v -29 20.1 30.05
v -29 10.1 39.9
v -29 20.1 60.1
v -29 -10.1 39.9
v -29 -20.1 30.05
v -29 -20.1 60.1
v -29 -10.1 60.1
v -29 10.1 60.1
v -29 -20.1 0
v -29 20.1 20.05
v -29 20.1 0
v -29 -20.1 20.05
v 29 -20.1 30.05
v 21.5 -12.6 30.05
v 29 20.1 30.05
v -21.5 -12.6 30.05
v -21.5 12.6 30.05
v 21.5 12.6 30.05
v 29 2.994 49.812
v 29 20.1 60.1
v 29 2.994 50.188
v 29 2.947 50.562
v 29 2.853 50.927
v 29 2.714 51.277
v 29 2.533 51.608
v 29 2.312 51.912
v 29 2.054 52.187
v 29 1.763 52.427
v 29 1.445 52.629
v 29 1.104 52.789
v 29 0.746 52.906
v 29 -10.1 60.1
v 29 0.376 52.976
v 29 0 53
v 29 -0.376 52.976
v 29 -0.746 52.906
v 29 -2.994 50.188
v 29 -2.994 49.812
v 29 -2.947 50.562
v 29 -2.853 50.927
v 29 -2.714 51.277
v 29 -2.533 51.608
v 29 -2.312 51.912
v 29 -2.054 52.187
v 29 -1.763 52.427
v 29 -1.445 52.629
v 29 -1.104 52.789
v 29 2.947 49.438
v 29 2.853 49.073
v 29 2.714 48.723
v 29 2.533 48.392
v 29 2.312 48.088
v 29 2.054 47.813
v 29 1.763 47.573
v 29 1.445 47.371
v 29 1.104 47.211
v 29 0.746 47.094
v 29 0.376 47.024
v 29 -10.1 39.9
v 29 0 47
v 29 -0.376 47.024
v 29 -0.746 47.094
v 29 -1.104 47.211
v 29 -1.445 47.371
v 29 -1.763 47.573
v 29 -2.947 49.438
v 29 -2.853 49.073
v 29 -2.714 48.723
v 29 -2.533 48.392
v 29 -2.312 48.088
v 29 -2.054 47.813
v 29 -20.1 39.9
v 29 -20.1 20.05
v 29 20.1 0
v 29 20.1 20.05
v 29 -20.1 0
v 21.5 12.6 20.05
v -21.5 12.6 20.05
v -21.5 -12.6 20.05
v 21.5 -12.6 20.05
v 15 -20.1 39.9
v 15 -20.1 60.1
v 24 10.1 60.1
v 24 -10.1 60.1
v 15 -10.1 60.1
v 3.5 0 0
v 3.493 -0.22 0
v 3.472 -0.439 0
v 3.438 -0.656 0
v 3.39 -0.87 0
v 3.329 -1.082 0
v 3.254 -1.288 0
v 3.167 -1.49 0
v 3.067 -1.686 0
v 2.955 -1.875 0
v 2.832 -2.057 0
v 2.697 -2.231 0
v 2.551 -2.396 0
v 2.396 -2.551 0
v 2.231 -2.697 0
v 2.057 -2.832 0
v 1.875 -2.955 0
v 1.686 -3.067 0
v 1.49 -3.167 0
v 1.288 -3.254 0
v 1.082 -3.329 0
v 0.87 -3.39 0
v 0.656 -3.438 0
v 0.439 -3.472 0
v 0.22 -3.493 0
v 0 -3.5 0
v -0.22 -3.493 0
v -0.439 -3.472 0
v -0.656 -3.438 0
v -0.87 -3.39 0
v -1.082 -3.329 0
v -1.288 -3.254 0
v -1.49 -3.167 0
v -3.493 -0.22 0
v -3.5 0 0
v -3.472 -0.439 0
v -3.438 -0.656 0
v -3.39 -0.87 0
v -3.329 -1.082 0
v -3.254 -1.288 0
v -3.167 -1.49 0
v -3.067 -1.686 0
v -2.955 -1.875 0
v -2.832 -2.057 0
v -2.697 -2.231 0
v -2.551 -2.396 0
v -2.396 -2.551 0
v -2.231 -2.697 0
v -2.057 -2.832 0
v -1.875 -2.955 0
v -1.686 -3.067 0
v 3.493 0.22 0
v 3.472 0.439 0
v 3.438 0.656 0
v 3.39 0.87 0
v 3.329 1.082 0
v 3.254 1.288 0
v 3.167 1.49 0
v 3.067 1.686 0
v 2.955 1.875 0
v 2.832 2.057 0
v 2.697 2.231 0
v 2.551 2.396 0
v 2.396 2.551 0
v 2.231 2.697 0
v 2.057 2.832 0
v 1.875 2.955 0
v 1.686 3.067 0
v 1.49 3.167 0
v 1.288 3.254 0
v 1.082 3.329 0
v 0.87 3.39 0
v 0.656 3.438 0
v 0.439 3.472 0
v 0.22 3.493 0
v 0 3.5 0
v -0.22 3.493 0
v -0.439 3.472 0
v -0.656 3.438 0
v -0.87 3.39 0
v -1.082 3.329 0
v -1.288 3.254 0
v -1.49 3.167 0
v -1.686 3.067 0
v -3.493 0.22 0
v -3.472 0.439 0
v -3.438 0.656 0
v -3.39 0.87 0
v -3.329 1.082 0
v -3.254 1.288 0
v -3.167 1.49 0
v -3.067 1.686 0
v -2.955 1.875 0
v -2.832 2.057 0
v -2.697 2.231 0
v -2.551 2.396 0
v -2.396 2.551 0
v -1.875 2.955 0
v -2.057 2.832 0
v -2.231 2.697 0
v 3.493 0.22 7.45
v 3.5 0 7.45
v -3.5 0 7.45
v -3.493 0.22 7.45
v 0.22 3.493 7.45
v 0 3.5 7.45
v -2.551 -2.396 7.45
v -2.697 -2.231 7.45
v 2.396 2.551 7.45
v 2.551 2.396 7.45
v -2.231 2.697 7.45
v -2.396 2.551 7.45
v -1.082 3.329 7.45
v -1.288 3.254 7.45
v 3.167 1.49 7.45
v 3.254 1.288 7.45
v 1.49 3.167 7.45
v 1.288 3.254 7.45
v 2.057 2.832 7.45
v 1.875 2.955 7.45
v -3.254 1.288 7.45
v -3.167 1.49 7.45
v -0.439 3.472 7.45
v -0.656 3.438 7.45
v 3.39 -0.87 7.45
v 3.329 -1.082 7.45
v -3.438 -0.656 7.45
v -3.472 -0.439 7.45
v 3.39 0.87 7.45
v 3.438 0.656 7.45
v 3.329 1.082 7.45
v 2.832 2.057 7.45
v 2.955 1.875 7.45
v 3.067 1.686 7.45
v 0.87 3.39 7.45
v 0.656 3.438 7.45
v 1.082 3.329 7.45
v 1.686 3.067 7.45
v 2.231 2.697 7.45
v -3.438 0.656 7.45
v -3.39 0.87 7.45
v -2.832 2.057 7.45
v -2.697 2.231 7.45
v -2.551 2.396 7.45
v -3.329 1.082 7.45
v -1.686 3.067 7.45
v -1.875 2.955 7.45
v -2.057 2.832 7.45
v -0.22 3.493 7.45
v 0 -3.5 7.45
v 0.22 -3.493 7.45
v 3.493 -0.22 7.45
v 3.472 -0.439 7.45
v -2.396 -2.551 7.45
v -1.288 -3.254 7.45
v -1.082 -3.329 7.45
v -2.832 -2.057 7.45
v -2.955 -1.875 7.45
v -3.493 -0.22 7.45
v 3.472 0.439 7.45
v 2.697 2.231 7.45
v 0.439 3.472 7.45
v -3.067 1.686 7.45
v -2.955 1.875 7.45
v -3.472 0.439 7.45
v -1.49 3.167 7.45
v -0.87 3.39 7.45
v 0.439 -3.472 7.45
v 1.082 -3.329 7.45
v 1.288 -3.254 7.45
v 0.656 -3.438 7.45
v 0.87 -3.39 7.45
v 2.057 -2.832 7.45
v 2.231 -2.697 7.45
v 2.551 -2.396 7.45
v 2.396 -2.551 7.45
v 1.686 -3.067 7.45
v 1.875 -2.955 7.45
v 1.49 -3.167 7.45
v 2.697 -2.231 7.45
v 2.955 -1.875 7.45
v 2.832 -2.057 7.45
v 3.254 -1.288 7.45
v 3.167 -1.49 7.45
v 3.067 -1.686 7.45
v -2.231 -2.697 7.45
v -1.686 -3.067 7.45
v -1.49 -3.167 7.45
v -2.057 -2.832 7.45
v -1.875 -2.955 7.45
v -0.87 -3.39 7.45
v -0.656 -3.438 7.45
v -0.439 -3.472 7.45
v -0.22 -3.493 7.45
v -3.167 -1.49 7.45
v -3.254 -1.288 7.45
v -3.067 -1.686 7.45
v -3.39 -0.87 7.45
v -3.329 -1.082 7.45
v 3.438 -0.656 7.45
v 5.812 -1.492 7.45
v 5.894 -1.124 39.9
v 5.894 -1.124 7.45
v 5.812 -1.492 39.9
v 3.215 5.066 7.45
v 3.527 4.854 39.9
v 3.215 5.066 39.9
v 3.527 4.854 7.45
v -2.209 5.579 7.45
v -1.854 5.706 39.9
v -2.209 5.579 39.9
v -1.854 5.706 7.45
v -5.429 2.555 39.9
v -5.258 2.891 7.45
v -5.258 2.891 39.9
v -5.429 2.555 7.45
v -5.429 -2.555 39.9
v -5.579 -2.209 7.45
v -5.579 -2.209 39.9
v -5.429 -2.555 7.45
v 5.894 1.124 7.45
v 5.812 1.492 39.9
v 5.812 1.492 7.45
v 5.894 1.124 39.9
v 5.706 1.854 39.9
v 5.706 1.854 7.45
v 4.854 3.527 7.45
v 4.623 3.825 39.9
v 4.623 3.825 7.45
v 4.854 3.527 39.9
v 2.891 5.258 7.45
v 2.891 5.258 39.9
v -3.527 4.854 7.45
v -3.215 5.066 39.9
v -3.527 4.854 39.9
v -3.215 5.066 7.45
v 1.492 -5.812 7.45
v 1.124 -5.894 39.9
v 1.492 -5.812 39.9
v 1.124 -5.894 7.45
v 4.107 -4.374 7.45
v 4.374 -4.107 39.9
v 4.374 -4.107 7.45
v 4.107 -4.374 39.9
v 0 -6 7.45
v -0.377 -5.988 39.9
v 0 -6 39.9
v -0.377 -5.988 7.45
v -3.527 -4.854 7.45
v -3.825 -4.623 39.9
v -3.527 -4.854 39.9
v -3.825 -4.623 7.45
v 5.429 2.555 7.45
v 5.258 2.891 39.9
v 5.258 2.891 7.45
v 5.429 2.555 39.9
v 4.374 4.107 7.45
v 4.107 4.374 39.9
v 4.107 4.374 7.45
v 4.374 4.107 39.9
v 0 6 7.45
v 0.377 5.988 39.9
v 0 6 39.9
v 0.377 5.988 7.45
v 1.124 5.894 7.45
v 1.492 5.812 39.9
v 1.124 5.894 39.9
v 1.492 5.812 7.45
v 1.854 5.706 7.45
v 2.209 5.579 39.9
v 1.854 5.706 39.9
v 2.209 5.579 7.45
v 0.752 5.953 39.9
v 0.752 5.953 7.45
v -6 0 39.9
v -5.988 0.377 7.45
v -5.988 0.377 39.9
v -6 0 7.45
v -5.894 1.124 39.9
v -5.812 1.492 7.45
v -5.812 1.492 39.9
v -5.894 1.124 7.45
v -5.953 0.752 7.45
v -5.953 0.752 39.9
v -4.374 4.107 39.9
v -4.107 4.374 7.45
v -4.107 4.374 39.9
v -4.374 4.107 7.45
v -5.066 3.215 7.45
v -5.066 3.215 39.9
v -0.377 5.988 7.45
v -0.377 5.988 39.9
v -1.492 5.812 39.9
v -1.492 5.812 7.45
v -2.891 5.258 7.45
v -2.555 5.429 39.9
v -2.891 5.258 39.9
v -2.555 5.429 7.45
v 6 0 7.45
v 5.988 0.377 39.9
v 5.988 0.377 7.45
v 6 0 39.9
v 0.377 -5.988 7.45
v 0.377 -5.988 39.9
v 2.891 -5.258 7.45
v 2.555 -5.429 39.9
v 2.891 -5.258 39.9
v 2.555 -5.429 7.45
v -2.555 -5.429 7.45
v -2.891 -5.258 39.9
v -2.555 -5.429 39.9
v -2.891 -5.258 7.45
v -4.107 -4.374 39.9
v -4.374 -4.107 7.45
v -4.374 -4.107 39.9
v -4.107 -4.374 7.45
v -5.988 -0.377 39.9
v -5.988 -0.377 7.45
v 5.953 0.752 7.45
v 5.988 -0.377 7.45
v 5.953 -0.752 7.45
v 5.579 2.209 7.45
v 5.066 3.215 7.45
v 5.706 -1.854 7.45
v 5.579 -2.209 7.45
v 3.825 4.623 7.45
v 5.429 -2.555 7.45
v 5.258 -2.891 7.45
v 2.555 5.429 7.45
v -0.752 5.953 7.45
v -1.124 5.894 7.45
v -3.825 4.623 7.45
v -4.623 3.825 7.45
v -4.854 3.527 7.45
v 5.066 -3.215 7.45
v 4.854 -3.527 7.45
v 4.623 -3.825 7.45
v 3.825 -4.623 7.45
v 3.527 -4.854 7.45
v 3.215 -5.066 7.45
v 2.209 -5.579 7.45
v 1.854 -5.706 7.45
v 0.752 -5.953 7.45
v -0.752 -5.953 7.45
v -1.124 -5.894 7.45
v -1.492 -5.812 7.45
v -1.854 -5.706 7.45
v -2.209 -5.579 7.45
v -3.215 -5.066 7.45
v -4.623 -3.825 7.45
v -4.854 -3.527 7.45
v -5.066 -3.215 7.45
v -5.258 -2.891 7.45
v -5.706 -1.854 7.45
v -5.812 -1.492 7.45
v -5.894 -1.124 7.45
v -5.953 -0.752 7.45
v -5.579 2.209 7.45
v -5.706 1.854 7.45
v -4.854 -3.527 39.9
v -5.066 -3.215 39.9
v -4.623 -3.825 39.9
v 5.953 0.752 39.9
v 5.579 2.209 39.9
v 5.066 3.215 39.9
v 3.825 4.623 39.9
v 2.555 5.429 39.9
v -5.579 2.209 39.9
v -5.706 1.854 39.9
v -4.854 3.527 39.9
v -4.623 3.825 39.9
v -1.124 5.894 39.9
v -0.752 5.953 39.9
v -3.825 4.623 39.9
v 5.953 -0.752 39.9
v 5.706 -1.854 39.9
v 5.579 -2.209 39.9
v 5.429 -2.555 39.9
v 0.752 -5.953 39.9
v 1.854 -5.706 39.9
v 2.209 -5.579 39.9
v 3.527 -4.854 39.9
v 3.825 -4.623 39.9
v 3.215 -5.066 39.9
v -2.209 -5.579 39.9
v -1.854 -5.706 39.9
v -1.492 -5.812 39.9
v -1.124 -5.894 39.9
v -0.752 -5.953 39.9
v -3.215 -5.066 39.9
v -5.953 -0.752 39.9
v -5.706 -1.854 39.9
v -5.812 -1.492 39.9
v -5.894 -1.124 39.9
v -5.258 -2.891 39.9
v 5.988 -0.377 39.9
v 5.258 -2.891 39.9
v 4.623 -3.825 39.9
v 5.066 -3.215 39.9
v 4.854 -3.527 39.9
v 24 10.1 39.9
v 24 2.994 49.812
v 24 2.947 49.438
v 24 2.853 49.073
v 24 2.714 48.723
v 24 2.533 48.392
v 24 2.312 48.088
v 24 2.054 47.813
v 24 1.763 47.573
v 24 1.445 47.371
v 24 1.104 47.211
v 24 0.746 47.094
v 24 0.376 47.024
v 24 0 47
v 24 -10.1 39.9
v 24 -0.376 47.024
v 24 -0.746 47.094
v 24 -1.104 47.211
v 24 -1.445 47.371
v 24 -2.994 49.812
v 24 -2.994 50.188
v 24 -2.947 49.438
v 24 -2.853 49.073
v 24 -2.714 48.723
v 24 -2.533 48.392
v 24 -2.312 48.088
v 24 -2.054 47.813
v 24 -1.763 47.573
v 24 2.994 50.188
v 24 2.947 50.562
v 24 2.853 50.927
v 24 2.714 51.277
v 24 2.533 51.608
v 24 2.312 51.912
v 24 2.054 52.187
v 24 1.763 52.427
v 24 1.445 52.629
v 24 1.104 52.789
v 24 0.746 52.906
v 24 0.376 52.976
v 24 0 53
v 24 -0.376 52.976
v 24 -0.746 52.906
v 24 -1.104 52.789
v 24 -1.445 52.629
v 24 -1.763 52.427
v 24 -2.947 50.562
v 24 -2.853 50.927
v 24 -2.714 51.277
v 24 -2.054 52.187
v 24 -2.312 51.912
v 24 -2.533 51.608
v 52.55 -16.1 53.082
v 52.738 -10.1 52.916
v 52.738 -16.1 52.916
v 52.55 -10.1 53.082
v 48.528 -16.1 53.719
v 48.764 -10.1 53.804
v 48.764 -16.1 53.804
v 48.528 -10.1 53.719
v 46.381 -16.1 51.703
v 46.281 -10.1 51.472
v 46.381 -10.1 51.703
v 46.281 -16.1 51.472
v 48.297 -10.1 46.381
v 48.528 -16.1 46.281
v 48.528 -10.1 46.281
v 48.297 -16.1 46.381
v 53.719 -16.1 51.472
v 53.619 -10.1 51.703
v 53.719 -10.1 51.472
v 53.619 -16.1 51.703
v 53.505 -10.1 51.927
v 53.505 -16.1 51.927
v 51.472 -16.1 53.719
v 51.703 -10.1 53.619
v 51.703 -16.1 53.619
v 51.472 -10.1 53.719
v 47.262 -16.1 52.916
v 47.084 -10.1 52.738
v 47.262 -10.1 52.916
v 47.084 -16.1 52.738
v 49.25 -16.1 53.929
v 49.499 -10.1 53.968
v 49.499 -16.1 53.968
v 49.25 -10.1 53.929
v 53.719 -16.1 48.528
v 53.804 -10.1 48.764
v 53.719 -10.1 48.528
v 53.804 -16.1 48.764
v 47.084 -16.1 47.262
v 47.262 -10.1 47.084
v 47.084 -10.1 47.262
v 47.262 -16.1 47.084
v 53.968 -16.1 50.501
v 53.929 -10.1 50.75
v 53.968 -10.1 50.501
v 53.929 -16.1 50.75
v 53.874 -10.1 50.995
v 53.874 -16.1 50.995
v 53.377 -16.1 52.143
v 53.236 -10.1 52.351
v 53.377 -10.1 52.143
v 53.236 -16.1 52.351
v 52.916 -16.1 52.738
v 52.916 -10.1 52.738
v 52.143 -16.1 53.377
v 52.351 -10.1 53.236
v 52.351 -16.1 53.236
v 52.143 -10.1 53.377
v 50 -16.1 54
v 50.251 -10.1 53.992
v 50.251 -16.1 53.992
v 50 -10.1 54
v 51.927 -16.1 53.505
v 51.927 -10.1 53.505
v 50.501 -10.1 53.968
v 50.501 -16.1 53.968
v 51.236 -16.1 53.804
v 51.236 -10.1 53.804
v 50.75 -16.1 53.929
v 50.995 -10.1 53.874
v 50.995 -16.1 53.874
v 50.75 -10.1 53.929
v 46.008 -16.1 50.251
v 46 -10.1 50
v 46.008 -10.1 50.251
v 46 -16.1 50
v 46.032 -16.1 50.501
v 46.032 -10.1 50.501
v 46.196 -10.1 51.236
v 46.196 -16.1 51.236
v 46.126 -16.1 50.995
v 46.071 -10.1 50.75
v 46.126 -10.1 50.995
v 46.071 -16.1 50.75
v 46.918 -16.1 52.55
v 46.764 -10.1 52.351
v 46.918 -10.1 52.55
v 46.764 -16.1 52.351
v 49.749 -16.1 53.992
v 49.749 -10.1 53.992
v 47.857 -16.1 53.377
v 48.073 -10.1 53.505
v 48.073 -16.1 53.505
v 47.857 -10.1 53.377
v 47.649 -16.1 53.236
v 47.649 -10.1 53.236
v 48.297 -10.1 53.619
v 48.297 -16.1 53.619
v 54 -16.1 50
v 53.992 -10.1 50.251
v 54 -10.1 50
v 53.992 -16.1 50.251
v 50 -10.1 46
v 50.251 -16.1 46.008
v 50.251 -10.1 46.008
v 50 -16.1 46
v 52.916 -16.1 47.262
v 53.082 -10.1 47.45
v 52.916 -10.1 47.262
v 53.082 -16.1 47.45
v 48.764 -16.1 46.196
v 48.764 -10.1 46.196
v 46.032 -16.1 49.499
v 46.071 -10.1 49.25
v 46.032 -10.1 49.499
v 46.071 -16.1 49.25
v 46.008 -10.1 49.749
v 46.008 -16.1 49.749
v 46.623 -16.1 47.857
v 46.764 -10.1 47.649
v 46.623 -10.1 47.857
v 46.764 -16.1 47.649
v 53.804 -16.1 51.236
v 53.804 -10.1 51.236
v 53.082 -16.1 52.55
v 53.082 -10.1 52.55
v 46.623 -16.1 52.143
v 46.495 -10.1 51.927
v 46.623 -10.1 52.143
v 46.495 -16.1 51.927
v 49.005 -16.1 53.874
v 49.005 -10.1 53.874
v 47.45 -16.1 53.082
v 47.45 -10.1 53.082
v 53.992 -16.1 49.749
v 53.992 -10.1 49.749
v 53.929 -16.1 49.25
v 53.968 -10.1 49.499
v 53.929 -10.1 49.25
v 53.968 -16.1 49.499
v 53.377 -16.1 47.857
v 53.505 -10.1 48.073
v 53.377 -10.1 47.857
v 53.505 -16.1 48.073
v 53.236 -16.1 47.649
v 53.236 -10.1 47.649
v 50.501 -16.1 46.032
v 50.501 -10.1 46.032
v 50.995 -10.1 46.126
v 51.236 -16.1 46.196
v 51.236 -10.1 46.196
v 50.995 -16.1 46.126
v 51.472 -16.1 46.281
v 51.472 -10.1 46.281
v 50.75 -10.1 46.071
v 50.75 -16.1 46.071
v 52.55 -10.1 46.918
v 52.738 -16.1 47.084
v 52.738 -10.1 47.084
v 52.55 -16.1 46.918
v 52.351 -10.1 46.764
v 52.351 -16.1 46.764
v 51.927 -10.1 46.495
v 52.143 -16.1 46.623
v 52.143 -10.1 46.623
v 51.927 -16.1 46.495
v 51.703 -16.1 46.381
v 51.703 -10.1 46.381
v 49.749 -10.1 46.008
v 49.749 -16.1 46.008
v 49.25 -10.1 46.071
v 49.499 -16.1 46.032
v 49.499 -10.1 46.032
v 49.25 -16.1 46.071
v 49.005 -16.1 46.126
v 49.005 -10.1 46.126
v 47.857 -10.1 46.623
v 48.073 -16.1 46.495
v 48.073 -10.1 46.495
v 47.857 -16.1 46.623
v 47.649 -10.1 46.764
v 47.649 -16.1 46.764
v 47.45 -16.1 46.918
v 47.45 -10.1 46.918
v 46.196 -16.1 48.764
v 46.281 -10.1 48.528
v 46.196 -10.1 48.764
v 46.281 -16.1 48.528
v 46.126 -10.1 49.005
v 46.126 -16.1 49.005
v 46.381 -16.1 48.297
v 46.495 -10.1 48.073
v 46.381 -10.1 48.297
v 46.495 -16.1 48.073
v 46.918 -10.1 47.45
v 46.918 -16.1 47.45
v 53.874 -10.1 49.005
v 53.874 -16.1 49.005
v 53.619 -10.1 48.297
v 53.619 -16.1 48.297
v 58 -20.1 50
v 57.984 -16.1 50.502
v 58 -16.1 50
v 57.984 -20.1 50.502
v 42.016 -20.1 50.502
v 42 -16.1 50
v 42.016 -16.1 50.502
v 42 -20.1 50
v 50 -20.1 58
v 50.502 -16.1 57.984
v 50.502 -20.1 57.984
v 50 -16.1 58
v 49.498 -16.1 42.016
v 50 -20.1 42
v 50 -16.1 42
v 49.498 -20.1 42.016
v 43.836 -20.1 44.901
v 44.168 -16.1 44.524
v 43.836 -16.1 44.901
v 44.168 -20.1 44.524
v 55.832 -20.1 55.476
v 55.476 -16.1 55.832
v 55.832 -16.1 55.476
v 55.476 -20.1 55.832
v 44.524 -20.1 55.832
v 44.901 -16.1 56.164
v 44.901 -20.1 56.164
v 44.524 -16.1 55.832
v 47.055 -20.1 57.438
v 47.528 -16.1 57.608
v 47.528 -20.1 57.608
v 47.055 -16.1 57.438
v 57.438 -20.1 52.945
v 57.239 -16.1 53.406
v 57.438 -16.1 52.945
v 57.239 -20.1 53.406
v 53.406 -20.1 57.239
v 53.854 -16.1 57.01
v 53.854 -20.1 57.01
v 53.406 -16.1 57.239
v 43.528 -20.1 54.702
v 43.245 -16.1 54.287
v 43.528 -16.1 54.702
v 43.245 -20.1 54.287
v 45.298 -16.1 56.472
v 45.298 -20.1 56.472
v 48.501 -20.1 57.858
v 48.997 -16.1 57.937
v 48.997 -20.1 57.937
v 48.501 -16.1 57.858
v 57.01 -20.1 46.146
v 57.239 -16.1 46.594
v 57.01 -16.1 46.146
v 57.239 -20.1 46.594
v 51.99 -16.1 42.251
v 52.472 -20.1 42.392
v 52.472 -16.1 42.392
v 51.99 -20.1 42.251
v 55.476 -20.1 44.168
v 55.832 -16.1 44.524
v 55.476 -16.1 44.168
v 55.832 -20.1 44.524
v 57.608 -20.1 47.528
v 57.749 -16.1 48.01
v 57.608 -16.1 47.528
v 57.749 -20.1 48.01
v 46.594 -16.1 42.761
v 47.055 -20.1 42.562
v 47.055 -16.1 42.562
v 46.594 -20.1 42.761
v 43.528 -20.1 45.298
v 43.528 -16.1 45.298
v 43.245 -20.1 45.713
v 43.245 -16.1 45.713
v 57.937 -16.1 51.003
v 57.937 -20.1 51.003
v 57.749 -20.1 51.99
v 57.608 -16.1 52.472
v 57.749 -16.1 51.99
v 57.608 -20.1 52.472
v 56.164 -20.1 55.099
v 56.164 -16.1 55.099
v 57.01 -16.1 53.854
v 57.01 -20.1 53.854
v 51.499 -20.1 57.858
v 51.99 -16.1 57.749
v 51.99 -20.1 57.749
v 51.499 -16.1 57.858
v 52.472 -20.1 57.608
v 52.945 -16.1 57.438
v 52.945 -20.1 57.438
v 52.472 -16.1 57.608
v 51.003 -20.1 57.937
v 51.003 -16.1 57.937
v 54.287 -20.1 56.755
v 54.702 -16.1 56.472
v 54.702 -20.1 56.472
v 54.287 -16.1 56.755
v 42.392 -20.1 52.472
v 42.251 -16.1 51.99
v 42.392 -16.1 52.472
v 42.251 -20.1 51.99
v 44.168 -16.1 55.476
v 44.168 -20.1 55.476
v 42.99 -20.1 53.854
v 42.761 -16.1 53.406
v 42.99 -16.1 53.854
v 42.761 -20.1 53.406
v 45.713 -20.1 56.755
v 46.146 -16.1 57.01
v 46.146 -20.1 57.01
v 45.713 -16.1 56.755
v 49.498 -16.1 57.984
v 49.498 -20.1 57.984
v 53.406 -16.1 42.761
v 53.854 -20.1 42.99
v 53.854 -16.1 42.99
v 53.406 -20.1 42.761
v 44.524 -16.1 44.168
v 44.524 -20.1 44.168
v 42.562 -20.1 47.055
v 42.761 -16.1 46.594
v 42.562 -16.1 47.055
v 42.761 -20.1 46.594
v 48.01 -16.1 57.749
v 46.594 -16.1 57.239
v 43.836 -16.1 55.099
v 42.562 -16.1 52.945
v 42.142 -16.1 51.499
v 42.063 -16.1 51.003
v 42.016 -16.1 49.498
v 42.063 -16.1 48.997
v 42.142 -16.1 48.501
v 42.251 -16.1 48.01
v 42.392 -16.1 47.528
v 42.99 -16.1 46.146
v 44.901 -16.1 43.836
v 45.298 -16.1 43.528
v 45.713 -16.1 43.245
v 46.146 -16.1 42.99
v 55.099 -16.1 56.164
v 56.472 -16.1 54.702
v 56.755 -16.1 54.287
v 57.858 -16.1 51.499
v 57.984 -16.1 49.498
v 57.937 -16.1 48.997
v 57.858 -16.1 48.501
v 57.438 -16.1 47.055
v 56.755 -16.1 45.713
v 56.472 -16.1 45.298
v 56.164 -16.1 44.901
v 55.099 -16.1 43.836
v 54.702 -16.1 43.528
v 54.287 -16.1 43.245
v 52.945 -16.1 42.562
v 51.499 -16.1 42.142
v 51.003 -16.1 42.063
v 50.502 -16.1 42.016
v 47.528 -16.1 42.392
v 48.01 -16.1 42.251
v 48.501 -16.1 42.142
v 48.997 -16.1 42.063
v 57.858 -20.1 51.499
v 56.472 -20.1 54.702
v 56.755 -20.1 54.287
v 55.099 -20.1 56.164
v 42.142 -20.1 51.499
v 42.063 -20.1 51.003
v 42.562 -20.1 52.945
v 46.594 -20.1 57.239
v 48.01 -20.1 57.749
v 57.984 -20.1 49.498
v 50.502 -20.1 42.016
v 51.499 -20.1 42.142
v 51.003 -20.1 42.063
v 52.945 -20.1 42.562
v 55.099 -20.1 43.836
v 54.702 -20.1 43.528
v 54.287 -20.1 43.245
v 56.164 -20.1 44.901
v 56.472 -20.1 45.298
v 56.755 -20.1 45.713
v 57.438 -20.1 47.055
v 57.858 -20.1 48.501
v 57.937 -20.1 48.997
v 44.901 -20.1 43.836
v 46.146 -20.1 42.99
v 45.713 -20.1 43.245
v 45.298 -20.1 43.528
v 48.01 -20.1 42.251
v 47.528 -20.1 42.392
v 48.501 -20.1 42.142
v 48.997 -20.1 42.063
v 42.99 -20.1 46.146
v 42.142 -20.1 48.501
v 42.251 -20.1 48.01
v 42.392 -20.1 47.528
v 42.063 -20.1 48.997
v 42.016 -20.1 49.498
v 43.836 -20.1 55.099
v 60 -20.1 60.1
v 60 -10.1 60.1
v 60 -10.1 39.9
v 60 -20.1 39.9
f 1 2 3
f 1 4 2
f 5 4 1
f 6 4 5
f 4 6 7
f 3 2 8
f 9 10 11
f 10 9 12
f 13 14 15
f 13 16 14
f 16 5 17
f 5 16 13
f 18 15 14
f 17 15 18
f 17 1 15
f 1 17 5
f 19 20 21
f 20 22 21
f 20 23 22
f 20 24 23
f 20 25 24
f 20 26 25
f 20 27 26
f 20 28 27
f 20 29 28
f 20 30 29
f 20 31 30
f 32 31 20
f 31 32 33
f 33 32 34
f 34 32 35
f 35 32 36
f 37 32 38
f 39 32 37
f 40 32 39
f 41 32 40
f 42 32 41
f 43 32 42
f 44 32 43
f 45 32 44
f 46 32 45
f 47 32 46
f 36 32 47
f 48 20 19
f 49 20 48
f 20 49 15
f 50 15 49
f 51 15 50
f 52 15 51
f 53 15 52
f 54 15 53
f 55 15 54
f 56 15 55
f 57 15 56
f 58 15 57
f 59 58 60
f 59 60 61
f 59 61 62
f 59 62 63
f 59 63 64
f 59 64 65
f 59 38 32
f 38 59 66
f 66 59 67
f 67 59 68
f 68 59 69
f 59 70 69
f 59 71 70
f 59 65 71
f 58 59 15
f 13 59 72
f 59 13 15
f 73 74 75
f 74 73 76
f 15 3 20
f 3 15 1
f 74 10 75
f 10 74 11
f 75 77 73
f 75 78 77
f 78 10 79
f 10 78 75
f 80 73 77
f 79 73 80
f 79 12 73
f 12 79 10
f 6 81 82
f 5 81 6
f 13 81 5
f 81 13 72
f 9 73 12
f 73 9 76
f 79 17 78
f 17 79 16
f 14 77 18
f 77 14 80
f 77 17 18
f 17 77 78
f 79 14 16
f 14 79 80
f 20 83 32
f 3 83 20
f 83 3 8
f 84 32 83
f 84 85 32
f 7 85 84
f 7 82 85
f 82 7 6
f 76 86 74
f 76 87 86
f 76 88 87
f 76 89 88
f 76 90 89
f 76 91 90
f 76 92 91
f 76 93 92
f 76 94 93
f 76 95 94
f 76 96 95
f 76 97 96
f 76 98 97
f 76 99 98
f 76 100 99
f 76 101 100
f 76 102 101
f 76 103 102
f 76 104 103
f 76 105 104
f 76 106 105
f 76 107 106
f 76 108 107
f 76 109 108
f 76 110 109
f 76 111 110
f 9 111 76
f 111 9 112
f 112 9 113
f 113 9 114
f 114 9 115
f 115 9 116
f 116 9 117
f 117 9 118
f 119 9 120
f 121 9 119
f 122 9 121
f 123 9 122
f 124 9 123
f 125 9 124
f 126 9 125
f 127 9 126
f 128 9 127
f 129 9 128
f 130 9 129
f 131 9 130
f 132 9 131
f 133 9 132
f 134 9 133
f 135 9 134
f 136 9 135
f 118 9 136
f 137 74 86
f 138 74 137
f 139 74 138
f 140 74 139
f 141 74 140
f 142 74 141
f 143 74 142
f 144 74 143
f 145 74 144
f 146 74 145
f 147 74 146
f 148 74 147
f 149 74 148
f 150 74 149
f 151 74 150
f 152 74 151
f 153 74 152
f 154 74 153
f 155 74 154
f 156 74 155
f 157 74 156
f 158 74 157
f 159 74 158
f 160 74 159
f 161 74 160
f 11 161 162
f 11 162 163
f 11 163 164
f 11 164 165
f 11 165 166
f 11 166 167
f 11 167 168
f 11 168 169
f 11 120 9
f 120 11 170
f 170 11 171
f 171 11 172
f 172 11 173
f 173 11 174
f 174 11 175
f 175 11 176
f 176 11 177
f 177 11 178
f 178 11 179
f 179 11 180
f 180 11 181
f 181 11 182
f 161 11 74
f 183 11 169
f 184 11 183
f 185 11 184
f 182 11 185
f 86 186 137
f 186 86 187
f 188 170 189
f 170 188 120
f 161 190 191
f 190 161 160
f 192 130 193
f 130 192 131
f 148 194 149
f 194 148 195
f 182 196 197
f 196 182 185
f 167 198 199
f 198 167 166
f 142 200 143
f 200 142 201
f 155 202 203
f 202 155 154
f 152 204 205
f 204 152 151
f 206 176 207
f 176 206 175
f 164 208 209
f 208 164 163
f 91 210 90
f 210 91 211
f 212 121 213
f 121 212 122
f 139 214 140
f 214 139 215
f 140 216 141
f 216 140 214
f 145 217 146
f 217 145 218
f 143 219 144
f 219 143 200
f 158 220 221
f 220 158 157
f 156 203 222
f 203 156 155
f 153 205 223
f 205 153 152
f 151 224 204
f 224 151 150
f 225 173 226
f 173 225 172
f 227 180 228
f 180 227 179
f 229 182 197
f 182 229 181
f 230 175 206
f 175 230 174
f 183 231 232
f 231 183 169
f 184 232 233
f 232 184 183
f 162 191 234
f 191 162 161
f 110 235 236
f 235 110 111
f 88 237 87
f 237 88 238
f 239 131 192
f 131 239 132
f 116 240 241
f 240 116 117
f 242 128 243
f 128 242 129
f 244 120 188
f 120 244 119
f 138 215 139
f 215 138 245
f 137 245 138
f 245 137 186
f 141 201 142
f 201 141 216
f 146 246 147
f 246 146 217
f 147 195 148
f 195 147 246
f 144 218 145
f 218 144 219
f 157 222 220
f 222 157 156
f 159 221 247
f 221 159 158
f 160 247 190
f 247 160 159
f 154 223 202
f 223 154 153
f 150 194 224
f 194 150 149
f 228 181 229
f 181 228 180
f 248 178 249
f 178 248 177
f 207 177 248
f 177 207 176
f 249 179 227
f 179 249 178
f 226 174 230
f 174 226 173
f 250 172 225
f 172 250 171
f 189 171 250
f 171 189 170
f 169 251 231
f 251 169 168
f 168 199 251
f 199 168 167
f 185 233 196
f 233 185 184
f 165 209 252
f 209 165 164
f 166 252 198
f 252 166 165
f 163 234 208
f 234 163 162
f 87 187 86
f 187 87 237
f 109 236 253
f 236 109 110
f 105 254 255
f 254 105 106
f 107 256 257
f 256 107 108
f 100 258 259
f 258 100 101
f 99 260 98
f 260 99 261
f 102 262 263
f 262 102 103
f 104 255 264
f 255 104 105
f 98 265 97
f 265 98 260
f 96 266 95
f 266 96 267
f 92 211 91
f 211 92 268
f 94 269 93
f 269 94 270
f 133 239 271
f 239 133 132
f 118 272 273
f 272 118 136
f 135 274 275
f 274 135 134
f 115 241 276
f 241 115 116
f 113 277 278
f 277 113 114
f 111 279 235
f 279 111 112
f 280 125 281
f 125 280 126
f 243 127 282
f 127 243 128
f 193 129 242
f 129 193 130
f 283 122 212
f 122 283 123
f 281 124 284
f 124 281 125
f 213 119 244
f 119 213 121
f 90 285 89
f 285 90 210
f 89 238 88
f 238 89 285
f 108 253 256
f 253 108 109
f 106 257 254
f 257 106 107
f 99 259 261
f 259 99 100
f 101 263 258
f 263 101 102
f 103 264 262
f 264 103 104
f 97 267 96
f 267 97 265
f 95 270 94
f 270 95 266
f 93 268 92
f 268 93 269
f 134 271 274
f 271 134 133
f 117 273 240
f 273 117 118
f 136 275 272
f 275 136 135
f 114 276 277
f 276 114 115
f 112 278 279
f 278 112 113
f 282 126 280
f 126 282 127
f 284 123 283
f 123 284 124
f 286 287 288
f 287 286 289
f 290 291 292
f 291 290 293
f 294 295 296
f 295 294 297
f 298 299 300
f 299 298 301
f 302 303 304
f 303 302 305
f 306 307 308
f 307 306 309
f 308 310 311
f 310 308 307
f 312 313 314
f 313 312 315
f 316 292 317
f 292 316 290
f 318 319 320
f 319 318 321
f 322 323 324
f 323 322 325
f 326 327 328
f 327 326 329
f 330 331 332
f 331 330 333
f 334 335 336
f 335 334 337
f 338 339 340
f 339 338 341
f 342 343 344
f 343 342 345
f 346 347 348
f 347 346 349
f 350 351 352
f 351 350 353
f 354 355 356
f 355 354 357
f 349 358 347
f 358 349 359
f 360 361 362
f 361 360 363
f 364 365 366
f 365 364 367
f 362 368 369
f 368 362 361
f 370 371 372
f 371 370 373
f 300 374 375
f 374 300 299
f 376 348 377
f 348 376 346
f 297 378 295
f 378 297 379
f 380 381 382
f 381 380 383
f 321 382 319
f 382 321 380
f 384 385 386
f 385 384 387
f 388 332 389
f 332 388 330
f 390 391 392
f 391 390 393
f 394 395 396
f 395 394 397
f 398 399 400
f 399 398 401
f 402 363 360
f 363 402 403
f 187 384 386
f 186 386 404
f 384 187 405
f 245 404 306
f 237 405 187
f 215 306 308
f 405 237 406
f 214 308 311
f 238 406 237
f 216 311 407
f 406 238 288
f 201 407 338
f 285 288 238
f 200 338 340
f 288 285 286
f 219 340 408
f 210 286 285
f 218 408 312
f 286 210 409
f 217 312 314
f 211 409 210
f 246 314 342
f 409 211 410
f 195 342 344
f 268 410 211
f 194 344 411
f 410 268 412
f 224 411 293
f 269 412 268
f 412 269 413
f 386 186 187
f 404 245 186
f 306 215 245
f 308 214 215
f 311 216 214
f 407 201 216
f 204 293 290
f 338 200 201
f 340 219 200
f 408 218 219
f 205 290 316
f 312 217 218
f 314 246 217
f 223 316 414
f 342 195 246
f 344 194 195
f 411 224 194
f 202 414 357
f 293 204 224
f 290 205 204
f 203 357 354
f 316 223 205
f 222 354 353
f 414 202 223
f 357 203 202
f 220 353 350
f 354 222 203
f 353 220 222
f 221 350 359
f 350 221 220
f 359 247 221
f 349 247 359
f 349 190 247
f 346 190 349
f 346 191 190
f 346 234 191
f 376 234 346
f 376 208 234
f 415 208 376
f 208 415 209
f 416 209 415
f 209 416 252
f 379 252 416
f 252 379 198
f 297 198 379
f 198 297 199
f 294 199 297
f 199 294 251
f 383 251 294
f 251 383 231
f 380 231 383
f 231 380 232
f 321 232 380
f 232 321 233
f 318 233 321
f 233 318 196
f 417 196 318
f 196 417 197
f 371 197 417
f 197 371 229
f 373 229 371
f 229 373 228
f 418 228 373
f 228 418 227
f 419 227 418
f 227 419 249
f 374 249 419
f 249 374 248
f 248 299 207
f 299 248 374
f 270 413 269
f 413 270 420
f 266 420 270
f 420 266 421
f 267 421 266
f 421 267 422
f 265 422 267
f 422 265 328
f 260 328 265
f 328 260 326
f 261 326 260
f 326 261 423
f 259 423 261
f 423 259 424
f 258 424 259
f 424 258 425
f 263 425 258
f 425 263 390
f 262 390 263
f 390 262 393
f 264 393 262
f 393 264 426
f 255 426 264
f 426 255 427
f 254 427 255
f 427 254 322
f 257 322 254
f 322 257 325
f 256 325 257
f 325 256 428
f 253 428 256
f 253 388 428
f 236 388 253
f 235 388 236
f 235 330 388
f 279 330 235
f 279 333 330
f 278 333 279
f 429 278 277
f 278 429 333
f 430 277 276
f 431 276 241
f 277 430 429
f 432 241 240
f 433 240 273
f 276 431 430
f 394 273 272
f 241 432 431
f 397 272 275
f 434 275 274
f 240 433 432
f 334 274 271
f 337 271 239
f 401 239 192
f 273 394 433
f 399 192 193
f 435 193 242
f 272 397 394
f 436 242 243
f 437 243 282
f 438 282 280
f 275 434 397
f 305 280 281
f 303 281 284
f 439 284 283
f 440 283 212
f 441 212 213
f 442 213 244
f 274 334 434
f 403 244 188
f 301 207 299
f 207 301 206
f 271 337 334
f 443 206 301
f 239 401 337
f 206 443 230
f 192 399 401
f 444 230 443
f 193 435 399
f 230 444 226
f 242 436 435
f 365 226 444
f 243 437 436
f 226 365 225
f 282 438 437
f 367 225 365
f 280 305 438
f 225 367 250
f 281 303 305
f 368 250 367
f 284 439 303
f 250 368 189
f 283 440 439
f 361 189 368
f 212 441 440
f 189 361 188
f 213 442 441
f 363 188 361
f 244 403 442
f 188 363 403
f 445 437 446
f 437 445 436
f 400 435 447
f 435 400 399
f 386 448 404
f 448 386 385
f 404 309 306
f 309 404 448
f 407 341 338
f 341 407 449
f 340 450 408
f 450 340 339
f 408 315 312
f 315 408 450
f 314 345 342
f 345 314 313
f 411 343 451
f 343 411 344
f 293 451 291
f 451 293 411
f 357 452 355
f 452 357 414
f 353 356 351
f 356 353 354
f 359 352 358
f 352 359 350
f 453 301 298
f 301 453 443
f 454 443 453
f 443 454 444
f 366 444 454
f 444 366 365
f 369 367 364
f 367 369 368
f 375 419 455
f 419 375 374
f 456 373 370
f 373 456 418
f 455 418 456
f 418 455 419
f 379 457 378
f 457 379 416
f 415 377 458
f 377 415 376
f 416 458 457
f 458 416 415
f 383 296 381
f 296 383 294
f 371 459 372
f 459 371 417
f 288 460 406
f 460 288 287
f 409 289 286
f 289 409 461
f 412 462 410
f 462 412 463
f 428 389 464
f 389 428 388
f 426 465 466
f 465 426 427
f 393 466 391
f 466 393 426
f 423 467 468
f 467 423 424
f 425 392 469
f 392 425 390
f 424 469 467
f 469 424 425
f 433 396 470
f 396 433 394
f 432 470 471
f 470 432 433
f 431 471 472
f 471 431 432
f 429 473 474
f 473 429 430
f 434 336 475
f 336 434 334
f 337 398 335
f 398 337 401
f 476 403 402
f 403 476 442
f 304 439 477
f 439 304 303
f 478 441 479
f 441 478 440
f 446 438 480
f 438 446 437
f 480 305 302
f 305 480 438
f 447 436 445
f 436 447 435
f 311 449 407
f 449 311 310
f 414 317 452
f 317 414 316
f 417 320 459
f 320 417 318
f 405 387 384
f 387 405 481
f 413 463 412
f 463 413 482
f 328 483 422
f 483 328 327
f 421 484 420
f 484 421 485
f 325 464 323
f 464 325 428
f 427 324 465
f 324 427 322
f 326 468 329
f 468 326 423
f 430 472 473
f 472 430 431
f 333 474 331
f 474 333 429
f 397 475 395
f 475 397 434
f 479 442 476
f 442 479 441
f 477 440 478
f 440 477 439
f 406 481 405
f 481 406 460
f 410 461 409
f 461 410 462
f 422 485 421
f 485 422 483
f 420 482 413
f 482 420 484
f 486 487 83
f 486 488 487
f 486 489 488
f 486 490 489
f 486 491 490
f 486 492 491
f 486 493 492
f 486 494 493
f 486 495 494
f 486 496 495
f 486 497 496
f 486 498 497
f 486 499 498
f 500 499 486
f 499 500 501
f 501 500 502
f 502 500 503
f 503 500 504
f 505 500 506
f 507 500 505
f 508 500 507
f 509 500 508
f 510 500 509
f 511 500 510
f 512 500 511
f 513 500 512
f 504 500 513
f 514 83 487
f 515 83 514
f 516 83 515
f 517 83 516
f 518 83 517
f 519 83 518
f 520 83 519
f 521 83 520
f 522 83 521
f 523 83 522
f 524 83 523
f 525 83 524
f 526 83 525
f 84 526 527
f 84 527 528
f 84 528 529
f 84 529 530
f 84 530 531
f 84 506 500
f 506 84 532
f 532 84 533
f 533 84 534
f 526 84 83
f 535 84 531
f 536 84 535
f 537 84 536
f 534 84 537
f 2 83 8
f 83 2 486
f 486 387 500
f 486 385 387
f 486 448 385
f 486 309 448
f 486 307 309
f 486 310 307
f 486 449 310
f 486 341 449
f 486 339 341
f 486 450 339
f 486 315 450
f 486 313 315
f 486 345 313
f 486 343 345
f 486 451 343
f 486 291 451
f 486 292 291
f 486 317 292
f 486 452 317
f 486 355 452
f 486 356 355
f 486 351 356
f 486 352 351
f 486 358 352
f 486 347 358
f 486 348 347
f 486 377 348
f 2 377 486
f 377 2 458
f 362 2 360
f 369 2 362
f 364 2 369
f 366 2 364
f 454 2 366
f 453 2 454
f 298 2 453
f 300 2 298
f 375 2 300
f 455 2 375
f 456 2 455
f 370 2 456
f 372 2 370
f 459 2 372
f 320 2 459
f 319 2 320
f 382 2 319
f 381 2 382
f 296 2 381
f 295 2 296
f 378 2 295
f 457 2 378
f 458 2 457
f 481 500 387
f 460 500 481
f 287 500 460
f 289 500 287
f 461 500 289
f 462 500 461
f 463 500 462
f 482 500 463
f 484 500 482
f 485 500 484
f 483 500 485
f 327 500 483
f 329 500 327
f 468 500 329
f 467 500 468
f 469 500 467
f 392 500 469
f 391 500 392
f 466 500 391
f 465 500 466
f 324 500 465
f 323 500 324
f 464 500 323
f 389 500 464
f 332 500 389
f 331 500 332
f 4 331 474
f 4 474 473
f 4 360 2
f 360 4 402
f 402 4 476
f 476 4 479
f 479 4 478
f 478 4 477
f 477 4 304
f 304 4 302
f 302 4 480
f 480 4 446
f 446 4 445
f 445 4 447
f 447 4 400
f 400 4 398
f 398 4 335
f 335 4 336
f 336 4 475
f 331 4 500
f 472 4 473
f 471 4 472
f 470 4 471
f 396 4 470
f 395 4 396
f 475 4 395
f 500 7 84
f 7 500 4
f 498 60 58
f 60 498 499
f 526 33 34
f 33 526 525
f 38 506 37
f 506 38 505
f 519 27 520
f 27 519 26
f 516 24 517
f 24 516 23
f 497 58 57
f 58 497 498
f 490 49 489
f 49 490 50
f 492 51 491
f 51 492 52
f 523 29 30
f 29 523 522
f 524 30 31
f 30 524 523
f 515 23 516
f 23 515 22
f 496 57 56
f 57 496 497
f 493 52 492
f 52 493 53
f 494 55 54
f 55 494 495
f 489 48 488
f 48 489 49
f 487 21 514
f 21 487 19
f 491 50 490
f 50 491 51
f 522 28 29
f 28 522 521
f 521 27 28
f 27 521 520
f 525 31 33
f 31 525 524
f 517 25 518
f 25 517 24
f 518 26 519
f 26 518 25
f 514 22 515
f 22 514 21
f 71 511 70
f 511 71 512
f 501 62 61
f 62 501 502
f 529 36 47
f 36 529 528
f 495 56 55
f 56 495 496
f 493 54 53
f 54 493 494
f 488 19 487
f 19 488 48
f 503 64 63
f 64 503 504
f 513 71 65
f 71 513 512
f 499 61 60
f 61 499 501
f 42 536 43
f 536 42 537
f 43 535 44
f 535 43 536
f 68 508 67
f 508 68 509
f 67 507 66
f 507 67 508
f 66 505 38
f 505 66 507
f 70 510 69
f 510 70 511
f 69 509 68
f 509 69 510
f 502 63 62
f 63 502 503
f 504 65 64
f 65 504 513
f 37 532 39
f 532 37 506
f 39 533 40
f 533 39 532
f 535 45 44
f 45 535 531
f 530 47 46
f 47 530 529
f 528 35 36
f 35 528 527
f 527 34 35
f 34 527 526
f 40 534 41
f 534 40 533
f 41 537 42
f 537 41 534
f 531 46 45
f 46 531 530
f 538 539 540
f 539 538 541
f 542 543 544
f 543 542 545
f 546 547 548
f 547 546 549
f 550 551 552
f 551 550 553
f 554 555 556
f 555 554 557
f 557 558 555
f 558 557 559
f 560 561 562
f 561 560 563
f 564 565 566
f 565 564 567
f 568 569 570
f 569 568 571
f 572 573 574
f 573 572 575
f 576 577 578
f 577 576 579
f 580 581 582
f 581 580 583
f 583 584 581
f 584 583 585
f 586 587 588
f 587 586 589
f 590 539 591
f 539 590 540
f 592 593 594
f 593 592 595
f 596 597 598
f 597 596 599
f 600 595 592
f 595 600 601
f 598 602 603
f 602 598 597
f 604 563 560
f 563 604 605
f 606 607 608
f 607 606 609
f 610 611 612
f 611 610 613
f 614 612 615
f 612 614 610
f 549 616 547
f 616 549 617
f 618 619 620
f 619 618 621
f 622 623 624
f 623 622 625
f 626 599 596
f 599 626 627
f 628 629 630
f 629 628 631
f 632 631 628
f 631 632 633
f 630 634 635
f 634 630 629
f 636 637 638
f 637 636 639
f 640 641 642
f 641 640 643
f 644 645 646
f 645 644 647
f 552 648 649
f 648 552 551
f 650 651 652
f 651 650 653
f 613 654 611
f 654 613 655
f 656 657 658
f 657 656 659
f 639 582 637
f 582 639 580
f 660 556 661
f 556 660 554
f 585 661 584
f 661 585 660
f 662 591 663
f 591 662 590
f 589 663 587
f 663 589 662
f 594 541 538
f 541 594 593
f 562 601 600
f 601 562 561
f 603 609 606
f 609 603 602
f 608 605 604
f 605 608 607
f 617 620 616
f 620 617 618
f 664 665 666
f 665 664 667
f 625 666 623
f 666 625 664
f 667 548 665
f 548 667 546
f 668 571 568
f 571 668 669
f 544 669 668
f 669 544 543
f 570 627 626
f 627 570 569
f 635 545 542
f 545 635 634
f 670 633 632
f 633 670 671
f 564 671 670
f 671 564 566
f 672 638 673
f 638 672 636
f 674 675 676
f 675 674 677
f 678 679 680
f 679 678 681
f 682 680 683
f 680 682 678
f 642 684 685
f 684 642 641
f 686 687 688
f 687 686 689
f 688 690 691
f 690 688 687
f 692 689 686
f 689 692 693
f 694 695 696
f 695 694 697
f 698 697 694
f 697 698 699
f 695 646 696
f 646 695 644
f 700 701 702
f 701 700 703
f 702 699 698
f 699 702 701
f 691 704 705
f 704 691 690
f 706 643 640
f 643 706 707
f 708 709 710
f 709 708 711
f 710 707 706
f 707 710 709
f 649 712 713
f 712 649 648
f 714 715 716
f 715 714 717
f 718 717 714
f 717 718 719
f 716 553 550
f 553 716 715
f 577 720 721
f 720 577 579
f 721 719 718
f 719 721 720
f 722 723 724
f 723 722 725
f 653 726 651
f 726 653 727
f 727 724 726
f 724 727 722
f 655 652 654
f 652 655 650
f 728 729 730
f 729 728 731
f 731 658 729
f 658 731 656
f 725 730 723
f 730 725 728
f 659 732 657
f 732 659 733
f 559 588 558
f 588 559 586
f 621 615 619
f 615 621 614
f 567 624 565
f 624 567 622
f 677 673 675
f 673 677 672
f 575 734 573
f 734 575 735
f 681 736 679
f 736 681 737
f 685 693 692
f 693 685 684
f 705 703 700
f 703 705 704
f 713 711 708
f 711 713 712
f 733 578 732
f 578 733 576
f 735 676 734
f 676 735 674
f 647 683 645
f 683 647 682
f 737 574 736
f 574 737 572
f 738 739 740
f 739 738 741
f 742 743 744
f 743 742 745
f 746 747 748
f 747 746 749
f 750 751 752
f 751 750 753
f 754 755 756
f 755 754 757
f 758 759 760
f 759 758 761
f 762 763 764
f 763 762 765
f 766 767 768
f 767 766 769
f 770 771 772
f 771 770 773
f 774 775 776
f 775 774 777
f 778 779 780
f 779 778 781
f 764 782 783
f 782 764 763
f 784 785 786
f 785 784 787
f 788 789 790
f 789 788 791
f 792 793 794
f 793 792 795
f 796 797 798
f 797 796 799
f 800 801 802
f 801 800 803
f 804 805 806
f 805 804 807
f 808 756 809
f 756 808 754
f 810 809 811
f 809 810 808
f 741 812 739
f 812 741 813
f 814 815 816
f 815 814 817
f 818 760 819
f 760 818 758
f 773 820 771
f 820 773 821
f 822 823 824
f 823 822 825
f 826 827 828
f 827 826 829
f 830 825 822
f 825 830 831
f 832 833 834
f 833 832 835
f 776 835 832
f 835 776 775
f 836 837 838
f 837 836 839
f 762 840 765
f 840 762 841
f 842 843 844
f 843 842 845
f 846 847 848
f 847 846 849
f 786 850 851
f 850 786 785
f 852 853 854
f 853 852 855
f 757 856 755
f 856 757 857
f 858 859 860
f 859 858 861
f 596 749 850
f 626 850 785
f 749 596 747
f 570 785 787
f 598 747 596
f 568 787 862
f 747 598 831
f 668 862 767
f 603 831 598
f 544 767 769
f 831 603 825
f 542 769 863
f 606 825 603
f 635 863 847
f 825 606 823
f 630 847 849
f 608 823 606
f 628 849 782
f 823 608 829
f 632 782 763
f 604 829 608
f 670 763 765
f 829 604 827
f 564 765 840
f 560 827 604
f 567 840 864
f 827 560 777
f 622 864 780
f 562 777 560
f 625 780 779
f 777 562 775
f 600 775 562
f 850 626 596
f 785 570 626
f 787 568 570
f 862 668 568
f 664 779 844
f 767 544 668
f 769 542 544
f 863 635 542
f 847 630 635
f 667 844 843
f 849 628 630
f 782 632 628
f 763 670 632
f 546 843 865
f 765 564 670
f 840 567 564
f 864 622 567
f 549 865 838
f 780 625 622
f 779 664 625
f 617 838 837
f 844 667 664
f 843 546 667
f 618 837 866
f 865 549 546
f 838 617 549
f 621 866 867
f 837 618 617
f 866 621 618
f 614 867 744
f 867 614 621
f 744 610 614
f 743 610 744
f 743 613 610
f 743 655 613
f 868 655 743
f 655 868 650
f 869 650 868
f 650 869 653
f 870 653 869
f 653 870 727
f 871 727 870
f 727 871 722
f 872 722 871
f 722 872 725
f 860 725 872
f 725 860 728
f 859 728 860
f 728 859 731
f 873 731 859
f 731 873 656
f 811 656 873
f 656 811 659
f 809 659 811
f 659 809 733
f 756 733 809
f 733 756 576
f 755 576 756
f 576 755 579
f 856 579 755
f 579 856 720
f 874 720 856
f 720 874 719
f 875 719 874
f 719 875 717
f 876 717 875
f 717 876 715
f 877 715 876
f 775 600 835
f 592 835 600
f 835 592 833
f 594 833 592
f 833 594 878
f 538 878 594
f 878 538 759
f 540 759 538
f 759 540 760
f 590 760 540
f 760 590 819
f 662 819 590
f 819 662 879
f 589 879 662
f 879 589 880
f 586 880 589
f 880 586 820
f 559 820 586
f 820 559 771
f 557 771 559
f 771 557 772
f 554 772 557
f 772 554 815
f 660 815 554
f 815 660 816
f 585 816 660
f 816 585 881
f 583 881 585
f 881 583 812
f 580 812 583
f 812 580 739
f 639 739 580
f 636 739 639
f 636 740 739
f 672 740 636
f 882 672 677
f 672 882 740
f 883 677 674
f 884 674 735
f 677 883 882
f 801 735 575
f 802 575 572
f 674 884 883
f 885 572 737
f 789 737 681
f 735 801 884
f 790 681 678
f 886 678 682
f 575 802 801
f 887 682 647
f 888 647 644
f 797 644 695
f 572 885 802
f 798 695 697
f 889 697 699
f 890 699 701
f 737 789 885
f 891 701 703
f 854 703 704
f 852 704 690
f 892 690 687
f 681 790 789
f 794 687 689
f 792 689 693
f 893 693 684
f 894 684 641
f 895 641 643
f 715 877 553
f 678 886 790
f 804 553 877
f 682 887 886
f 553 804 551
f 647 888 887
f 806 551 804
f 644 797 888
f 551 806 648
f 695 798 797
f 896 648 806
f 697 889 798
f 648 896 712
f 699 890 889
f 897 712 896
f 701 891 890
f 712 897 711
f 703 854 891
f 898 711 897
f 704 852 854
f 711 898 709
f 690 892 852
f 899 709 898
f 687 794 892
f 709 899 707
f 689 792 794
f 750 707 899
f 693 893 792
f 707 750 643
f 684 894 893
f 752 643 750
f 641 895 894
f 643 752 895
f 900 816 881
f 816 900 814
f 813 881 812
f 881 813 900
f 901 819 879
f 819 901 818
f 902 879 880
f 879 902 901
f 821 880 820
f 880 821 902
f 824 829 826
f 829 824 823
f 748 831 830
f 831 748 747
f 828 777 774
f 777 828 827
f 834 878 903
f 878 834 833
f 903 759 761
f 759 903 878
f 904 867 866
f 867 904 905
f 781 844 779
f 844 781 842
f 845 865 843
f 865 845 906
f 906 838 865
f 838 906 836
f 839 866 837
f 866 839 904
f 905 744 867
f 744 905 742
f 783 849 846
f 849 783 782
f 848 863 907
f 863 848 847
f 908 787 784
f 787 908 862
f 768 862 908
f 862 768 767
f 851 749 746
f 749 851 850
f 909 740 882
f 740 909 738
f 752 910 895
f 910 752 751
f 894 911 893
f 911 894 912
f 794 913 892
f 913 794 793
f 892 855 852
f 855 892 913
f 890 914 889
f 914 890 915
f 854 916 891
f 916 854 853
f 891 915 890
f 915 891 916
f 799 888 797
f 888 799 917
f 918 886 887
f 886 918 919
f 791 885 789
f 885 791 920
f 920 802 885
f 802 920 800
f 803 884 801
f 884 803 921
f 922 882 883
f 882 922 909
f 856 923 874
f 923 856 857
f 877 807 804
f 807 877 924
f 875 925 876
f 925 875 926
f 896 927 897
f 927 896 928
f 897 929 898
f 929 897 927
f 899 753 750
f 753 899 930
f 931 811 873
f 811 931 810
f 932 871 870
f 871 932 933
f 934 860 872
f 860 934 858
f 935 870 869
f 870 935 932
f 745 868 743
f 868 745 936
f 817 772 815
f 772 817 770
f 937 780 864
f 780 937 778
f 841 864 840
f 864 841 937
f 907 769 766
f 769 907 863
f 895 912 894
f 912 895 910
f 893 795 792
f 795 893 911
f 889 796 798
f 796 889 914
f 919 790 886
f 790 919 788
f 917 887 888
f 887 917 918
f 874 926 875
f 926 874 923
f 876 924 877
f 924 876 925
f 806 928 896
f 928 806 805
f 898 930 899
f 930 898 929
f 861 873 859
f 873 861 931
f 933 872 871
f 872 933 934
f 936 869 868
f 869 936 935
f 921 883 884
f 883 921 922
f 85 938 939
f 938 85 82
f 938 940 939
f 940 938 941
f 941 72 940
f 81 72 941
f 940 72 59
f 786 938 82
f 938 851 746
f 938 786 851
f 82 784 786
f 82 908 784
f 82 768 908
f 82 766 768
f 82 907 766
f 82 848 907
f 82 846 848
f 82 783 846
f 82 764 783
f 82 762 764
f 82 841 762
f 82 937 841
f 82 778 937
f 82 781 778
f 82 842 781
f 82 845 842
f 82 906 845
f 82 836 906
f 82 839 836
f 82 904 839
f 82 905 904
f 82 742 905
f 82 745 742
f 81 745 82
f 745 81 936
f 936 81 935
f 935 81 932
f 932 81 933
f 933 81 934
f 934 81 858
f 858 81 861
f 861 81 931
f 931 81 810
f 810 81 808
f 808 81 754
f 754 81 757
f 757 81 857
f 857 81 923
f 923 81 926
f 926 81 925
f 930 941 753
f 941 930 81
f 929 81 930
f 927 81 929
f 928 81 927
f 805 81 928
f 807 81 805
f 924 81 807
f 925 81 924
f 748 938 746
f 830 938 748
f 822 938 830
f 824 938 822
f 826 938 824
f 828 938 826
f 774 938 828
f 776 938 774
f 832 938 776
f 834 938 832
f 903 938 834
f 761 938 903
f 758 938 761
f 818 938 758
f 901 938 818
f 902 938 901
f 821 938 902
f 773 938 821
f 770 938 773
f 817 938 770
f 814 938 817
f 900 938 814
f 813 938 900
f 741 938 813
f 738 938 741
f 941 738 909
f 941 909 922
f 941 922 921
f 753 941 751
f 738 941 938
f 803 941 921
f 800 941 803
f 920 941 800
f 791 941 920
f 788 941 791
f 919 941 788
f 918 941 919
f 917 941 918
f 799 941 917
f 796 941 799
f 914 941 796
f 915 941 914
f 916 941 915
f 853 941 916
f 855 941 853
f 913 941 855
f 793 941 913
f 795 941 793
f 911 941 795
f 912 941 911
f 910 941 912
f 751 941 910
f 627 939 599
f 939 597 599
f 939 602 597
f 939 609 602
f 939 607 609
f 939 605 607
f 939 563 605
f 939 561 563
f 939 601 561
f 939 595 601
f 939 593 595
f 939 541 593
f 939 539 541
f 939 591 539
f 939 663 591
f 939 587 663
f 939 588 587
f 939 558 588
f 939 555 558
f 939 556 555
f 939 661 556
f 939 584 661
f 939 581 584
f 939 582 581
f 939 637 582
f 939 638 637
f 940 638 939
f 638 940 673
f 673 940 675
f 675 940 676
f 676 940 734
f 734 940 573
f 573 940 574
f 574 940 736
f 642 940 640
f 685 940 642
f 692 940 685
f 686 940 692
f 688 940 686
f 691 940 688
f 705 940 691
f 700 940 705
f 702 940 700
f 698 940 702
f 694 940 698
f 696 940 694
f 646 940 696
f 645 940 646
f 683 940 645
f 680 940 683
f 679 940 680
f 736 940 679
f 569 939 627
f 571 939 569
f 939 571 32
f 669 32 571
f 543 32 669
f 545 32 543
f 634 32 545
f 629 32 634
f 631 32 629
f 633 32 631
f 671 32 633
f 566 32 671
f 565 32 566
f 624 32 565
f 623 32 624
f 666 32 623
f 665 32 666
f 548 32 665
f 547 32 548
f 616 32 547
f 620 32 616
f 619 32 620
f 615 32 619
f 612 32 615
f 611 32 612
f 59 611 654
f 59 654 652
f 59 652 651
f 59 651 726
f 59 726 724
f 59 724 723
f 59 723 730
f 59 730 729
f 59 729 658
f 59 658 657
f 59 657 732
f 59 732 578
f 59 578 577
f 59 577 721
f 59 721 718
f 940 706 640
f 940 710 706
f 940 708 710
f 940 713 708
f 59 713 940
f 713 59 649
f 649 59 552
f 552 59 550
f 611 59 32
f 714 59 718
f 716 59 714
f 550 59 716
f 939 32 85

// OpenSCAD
alturaEje = 50;
motorSize = [20.2,20.2,48]; //Tamaño del motor
clearing = 20;
alturaPerros = 10;
anchoPerros = 15;

distFotodiodo = 50;

diametroPhExt = 16;
diametroPhInt = 8;

$fn = 100;


sizeSoporte = [motorSize[2], motorSize[1], alturaEje + motorSize[0]/2] + [0.5,1,0] * clearing;
difference(){
    translate([0,0,sizeSoporte[2] / 2]){
        
        difference(){

            cube(sizeSoporte, center=true);
          
            
            cylinder(h= alturaEje + motorSize[0], r=3.5, center=true);
            
            translate([0,0,5]){
                cylinder(h= alturaEje + motorSize[0] - 15, r=6 , center=true);
            }
            
            
            

            //Perros
            translate([0,0,-5]){
                difference(){
                    cube(sizeSoporte - [0,0,1] * (sizeSoporte[2] - alturaPerros), center=true);
                    cube(sizeSoporte - anchoPerros * [1,1,0] - (sizeSoporte[2] - alturaPerros) * [0,0,1], center=true);
                }
            }
        }
    }

    //Encastre del motor
    translate([-10, 0, alturaEje + 10]){
        cube([motorSize[2] + 20,motorSize[0],motorSize[1] + 20],center=true);   
        
}
    
    translate([0,0,alturaEje]){
        rotate([0, 90, 0]){
                    cylinder(d=6, h=motorSize[2], $fn=50);
        }
    }
    
    
}




//Soporte fotodiodo

    
 translate([distFotodiodo, (10/2 - sizeSoporte[1]/2), alturaEje]){
    difference(){
        translate([-distFotodiodo/4 , 0, 0]){
            cube([distFotodiodo/2 + 20, 10, 20.2], center = true);
        }


        
        rotate([90,0,0]){
            cylinder(d = diametroPhInt, h = 30, center = true);
            translate([0,0,6]){
                cylinder(d = diametroPhExt, h=10, center = true);
            }
        }

        
    }
}

      
